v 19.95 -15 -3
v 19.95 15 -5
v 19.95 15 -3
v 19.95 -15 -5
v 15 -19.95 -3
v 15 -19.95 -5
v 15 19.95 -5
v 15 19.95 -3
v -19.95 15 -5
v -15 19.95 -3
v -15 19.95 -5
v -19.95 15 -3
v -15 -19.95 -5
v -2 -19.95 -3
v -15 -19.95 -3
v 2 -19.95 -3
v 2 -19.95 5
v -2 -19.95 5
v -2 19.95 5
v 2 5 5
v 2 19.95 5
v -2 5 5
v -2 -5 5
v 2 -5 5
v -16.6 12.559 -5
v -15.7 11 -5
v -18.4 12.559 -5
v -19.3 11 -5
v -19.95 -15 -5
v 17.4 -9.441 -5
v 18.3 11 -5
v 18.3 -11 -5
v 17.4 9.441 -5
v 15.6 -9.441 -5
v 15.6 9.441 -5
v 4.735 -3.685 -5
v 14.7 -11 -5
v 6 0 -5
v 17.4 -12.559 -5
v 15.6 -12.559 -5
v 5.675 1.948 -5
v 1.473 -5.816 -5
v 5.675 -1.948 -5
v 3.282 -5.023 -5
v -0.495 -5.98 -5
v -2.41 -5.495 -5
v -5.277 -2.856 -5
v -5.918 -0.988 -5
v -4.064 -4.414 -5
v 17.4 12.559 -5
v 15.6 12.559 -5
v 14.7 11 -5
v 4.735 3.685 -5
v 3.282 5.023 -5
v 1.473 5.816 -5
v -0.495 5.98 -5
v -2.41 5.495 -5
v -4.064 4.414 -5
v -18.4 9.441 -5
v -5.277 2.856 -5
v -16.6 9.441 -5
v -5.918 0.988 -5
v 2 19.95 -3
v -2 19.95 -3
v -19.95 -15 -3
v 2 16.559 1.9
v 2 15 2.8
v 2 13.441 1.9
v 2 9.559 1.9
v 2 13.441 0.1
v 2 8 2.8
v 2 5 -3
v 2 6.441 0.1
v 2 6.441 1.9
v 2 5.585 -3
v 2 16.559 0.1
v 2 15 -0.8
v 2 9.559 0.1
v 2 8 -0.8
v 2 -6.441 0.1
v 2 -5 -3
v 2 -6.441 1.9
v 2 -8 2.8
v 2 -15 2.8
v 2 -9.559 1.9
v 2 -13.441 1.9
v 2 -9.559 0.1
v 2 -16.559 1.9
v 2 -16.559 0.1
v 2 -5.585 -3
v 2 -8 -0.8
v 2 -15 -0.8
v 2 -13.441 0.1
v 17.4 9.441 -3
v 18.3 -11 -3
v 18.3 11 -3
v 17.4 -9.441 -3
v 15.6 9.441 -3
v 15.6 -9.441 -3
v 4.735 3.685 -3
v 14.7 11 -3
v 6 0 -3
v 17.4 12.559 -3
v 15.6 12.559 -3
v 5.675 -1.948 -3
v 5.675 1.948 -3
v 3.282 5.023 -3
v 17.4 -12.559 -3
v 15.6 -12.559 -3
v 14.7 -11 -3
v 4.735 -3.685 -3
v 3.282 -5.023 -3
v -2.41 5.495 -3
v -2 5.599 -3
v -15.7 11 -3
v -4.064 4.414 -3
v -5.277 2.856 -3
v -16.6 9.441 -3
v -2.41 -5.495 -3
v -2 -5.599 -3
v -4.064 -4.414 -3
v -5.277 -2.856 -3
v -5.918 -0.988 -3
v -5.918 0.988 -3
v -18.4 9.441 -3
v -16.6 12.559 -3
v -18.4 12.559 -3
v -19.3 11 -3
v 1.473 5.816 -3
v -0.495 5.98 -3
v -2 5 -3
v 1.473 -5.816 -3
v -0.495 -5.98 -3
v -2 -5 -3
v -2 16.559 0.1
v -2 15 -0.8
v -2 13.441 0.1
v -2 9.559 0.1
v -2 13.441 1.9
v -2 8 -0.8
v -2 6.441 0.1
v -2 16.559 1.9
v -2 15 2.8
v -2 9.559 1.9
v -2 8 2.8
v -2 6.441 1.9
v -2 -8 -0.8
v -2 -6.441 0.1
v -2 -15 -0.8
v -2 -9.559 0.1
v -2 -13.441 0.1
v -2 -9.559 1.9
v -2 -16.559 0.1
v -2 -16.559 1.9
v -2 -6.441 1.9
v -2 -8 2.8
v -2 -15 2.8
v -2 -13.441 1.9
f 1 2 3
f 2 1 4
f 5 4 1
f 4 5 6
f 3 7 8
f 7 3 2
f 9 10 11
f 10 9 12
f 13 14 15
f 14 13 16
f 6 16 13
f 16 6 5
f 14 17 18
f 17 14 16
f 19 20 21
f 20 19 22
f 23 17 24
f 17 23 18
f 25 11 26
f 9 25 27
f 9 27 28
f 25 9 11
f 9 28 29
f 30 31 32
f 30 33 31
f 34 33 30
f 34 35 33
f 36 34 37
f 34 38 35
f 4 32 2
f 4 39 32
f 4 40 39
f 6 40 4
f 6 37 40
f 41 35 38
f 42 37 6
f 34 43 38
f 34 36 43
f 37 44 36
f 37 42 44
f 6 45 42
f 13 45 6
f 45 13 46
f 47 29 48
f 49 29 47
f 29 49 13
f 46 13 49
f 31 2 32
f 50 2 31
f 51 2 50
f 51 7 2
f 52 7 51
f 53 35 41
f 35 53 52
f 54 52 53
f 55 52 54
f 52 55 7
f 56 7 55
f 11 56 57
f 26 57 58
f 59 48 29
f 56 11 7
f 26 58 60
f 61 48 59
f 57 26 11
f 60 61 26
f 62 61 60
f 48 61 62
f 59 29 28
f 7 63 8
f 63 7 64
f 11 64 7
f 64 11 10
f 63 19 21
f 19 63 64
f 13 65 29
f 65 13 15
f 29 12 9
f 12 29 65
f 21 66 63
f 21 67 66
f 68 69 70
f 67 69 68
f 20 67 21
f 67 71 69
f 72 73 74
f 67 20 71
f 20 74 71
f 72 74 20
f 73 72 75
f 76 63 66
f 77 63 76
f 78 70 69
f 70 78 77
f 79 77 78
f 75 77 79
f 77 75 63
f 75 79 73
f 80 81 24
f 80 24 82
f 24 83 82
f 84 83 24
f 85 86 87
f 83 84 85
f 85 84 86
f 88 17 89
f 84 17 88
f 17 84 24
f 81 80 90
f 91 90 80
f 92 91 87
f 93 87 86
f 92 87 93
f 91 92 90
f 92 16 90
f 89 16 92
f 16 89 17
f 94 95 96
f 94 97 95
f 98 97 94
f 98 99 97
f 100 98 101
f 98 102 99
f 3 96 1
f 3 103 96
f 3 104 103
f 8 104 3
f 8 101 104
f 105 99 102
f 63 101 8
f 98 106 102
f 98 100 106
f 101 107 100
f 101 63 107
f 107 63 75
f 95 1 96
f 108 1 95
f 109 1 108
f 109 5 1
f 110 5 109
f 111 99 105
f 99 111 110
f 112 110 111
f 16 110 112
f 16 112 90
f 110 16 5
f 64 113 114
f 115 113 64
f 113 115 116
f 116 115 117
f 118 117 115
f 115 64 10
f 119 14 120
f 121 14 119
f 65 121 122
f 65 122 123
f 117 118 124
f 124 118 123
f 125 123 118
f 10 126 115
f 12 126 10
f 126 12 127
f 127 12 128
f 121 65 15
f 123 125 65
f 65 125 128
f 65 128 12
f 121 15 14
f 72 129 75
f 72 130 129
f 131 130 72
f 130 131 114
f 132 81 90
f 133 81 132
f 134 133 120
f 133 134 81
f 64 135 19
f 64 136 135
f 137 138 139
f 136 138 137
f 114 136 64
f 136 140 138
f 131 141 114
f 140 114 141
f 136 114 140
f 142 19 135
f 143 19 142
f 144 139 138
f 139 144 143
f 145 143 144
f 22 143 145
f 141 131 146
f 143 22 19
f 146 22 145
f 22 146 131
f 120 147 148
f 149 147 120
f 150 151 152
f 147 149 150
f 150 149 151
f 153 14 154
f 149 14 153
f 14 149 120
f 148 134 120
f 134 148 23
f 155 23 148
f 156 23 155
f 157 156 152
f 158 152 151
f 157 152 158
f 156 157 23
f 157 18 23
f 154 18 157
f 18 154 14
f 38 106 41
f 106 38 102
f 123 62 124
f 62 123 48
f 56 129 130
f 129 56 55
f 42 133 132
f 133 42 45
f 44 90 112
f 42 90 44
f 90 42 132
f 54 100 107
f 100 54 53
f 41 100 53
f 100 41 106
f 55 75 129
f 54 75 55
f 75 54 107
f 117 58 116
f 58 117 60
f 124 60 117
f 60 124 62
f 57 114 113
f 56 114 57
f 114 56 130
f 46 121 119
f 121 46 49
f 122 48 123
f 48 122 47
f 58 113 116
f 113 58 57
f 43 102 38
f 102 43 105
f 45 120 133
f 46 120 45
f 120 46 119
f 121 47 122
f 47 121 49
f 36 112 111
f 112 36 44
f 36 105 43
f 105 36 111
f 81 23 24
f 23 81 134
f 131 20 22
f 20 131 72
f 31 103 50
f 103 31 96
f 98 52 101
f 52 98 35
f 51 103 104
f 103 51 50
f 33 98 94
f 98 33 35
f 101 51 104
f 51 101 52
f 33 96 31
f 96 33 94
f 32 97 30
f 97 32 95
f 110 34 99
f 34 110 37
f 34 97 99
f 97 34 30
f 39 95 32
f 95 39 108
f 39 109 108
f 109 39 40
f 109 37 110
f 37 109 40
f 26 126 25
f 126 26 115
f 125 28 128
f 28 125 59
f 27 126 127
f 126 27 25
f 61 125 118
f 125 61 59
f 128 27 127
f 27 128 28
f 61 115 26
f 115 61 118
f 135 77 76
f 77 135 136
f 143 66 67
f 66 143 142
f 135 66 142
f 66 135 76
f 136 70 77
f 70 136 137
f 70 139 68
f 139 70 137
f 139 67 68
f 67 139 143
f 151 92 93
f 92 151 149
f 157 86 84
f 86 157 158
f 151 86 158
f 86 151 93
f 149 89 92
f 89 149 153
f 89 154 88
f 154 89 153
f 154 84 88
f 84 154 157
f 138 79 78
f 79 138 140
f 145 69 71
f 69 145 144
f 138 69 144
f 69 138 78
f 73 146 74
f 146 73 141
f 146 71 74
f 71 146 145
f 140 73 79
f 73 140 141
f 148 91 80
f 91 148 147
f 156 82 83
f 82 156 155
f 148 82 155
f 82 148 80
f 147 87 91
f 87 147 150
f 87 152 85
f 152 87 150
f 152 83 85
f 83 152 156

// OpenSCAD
difference () {
  union () {
    minkowski () {
      rotate (a=45.0, v=[0, 0, 1]) {
        cube ([7, 7, 5], center=true);
      }
      cube ([30, 30, 5], center=true);
    }
  }
  translate ([11, 0, 1]) {
    cube ([18, 40, 8], center=true);
  }
  translate ([-11, 0, 1]) {
    cube ([18, 40, 8], center=true);
  }
  translate ([0, 0, -4]) {
    cylinder (h=2, r=6, center=true);
  }
  cube ([4, 10, 10], center=true);
  translate ([16.5, 11, ]) {
    cylinder (h=10, r=1.8, center=true);
  }
  translate ([16.5, -11, ]) {
    cylinder (h=10, r=1.8, center=true);
  }
  translate ([-17.5, 11, ]) {
    cylinder (h=10, r=1.8, center=true);
  }
  translate ([0, 15, 1]) {
    rotate (a=90.0, v=[0, 1, 0]) {
      cylinder (h=4, r=1.8, center=true);
    }
  }
  translate ([0, -15, 1]) {
    rotate (a=90.0, v=[0, 1, 0]) {
      cylinder (h=4, r=1.8, center=true);
    }
  }
  translate ([0, 8, 1]) {
    rotate (a=90.0, v=[0, 1, 0]) {
      cylinder (h=4, r=1.8, center=true);
    }
  }
  translate ([0, -8, 1]) {
    rotate (a=90.0, v=[0, 1, 0]) {
      cylinder (h=4, r=1.8, center=true);
    }
  }
}
